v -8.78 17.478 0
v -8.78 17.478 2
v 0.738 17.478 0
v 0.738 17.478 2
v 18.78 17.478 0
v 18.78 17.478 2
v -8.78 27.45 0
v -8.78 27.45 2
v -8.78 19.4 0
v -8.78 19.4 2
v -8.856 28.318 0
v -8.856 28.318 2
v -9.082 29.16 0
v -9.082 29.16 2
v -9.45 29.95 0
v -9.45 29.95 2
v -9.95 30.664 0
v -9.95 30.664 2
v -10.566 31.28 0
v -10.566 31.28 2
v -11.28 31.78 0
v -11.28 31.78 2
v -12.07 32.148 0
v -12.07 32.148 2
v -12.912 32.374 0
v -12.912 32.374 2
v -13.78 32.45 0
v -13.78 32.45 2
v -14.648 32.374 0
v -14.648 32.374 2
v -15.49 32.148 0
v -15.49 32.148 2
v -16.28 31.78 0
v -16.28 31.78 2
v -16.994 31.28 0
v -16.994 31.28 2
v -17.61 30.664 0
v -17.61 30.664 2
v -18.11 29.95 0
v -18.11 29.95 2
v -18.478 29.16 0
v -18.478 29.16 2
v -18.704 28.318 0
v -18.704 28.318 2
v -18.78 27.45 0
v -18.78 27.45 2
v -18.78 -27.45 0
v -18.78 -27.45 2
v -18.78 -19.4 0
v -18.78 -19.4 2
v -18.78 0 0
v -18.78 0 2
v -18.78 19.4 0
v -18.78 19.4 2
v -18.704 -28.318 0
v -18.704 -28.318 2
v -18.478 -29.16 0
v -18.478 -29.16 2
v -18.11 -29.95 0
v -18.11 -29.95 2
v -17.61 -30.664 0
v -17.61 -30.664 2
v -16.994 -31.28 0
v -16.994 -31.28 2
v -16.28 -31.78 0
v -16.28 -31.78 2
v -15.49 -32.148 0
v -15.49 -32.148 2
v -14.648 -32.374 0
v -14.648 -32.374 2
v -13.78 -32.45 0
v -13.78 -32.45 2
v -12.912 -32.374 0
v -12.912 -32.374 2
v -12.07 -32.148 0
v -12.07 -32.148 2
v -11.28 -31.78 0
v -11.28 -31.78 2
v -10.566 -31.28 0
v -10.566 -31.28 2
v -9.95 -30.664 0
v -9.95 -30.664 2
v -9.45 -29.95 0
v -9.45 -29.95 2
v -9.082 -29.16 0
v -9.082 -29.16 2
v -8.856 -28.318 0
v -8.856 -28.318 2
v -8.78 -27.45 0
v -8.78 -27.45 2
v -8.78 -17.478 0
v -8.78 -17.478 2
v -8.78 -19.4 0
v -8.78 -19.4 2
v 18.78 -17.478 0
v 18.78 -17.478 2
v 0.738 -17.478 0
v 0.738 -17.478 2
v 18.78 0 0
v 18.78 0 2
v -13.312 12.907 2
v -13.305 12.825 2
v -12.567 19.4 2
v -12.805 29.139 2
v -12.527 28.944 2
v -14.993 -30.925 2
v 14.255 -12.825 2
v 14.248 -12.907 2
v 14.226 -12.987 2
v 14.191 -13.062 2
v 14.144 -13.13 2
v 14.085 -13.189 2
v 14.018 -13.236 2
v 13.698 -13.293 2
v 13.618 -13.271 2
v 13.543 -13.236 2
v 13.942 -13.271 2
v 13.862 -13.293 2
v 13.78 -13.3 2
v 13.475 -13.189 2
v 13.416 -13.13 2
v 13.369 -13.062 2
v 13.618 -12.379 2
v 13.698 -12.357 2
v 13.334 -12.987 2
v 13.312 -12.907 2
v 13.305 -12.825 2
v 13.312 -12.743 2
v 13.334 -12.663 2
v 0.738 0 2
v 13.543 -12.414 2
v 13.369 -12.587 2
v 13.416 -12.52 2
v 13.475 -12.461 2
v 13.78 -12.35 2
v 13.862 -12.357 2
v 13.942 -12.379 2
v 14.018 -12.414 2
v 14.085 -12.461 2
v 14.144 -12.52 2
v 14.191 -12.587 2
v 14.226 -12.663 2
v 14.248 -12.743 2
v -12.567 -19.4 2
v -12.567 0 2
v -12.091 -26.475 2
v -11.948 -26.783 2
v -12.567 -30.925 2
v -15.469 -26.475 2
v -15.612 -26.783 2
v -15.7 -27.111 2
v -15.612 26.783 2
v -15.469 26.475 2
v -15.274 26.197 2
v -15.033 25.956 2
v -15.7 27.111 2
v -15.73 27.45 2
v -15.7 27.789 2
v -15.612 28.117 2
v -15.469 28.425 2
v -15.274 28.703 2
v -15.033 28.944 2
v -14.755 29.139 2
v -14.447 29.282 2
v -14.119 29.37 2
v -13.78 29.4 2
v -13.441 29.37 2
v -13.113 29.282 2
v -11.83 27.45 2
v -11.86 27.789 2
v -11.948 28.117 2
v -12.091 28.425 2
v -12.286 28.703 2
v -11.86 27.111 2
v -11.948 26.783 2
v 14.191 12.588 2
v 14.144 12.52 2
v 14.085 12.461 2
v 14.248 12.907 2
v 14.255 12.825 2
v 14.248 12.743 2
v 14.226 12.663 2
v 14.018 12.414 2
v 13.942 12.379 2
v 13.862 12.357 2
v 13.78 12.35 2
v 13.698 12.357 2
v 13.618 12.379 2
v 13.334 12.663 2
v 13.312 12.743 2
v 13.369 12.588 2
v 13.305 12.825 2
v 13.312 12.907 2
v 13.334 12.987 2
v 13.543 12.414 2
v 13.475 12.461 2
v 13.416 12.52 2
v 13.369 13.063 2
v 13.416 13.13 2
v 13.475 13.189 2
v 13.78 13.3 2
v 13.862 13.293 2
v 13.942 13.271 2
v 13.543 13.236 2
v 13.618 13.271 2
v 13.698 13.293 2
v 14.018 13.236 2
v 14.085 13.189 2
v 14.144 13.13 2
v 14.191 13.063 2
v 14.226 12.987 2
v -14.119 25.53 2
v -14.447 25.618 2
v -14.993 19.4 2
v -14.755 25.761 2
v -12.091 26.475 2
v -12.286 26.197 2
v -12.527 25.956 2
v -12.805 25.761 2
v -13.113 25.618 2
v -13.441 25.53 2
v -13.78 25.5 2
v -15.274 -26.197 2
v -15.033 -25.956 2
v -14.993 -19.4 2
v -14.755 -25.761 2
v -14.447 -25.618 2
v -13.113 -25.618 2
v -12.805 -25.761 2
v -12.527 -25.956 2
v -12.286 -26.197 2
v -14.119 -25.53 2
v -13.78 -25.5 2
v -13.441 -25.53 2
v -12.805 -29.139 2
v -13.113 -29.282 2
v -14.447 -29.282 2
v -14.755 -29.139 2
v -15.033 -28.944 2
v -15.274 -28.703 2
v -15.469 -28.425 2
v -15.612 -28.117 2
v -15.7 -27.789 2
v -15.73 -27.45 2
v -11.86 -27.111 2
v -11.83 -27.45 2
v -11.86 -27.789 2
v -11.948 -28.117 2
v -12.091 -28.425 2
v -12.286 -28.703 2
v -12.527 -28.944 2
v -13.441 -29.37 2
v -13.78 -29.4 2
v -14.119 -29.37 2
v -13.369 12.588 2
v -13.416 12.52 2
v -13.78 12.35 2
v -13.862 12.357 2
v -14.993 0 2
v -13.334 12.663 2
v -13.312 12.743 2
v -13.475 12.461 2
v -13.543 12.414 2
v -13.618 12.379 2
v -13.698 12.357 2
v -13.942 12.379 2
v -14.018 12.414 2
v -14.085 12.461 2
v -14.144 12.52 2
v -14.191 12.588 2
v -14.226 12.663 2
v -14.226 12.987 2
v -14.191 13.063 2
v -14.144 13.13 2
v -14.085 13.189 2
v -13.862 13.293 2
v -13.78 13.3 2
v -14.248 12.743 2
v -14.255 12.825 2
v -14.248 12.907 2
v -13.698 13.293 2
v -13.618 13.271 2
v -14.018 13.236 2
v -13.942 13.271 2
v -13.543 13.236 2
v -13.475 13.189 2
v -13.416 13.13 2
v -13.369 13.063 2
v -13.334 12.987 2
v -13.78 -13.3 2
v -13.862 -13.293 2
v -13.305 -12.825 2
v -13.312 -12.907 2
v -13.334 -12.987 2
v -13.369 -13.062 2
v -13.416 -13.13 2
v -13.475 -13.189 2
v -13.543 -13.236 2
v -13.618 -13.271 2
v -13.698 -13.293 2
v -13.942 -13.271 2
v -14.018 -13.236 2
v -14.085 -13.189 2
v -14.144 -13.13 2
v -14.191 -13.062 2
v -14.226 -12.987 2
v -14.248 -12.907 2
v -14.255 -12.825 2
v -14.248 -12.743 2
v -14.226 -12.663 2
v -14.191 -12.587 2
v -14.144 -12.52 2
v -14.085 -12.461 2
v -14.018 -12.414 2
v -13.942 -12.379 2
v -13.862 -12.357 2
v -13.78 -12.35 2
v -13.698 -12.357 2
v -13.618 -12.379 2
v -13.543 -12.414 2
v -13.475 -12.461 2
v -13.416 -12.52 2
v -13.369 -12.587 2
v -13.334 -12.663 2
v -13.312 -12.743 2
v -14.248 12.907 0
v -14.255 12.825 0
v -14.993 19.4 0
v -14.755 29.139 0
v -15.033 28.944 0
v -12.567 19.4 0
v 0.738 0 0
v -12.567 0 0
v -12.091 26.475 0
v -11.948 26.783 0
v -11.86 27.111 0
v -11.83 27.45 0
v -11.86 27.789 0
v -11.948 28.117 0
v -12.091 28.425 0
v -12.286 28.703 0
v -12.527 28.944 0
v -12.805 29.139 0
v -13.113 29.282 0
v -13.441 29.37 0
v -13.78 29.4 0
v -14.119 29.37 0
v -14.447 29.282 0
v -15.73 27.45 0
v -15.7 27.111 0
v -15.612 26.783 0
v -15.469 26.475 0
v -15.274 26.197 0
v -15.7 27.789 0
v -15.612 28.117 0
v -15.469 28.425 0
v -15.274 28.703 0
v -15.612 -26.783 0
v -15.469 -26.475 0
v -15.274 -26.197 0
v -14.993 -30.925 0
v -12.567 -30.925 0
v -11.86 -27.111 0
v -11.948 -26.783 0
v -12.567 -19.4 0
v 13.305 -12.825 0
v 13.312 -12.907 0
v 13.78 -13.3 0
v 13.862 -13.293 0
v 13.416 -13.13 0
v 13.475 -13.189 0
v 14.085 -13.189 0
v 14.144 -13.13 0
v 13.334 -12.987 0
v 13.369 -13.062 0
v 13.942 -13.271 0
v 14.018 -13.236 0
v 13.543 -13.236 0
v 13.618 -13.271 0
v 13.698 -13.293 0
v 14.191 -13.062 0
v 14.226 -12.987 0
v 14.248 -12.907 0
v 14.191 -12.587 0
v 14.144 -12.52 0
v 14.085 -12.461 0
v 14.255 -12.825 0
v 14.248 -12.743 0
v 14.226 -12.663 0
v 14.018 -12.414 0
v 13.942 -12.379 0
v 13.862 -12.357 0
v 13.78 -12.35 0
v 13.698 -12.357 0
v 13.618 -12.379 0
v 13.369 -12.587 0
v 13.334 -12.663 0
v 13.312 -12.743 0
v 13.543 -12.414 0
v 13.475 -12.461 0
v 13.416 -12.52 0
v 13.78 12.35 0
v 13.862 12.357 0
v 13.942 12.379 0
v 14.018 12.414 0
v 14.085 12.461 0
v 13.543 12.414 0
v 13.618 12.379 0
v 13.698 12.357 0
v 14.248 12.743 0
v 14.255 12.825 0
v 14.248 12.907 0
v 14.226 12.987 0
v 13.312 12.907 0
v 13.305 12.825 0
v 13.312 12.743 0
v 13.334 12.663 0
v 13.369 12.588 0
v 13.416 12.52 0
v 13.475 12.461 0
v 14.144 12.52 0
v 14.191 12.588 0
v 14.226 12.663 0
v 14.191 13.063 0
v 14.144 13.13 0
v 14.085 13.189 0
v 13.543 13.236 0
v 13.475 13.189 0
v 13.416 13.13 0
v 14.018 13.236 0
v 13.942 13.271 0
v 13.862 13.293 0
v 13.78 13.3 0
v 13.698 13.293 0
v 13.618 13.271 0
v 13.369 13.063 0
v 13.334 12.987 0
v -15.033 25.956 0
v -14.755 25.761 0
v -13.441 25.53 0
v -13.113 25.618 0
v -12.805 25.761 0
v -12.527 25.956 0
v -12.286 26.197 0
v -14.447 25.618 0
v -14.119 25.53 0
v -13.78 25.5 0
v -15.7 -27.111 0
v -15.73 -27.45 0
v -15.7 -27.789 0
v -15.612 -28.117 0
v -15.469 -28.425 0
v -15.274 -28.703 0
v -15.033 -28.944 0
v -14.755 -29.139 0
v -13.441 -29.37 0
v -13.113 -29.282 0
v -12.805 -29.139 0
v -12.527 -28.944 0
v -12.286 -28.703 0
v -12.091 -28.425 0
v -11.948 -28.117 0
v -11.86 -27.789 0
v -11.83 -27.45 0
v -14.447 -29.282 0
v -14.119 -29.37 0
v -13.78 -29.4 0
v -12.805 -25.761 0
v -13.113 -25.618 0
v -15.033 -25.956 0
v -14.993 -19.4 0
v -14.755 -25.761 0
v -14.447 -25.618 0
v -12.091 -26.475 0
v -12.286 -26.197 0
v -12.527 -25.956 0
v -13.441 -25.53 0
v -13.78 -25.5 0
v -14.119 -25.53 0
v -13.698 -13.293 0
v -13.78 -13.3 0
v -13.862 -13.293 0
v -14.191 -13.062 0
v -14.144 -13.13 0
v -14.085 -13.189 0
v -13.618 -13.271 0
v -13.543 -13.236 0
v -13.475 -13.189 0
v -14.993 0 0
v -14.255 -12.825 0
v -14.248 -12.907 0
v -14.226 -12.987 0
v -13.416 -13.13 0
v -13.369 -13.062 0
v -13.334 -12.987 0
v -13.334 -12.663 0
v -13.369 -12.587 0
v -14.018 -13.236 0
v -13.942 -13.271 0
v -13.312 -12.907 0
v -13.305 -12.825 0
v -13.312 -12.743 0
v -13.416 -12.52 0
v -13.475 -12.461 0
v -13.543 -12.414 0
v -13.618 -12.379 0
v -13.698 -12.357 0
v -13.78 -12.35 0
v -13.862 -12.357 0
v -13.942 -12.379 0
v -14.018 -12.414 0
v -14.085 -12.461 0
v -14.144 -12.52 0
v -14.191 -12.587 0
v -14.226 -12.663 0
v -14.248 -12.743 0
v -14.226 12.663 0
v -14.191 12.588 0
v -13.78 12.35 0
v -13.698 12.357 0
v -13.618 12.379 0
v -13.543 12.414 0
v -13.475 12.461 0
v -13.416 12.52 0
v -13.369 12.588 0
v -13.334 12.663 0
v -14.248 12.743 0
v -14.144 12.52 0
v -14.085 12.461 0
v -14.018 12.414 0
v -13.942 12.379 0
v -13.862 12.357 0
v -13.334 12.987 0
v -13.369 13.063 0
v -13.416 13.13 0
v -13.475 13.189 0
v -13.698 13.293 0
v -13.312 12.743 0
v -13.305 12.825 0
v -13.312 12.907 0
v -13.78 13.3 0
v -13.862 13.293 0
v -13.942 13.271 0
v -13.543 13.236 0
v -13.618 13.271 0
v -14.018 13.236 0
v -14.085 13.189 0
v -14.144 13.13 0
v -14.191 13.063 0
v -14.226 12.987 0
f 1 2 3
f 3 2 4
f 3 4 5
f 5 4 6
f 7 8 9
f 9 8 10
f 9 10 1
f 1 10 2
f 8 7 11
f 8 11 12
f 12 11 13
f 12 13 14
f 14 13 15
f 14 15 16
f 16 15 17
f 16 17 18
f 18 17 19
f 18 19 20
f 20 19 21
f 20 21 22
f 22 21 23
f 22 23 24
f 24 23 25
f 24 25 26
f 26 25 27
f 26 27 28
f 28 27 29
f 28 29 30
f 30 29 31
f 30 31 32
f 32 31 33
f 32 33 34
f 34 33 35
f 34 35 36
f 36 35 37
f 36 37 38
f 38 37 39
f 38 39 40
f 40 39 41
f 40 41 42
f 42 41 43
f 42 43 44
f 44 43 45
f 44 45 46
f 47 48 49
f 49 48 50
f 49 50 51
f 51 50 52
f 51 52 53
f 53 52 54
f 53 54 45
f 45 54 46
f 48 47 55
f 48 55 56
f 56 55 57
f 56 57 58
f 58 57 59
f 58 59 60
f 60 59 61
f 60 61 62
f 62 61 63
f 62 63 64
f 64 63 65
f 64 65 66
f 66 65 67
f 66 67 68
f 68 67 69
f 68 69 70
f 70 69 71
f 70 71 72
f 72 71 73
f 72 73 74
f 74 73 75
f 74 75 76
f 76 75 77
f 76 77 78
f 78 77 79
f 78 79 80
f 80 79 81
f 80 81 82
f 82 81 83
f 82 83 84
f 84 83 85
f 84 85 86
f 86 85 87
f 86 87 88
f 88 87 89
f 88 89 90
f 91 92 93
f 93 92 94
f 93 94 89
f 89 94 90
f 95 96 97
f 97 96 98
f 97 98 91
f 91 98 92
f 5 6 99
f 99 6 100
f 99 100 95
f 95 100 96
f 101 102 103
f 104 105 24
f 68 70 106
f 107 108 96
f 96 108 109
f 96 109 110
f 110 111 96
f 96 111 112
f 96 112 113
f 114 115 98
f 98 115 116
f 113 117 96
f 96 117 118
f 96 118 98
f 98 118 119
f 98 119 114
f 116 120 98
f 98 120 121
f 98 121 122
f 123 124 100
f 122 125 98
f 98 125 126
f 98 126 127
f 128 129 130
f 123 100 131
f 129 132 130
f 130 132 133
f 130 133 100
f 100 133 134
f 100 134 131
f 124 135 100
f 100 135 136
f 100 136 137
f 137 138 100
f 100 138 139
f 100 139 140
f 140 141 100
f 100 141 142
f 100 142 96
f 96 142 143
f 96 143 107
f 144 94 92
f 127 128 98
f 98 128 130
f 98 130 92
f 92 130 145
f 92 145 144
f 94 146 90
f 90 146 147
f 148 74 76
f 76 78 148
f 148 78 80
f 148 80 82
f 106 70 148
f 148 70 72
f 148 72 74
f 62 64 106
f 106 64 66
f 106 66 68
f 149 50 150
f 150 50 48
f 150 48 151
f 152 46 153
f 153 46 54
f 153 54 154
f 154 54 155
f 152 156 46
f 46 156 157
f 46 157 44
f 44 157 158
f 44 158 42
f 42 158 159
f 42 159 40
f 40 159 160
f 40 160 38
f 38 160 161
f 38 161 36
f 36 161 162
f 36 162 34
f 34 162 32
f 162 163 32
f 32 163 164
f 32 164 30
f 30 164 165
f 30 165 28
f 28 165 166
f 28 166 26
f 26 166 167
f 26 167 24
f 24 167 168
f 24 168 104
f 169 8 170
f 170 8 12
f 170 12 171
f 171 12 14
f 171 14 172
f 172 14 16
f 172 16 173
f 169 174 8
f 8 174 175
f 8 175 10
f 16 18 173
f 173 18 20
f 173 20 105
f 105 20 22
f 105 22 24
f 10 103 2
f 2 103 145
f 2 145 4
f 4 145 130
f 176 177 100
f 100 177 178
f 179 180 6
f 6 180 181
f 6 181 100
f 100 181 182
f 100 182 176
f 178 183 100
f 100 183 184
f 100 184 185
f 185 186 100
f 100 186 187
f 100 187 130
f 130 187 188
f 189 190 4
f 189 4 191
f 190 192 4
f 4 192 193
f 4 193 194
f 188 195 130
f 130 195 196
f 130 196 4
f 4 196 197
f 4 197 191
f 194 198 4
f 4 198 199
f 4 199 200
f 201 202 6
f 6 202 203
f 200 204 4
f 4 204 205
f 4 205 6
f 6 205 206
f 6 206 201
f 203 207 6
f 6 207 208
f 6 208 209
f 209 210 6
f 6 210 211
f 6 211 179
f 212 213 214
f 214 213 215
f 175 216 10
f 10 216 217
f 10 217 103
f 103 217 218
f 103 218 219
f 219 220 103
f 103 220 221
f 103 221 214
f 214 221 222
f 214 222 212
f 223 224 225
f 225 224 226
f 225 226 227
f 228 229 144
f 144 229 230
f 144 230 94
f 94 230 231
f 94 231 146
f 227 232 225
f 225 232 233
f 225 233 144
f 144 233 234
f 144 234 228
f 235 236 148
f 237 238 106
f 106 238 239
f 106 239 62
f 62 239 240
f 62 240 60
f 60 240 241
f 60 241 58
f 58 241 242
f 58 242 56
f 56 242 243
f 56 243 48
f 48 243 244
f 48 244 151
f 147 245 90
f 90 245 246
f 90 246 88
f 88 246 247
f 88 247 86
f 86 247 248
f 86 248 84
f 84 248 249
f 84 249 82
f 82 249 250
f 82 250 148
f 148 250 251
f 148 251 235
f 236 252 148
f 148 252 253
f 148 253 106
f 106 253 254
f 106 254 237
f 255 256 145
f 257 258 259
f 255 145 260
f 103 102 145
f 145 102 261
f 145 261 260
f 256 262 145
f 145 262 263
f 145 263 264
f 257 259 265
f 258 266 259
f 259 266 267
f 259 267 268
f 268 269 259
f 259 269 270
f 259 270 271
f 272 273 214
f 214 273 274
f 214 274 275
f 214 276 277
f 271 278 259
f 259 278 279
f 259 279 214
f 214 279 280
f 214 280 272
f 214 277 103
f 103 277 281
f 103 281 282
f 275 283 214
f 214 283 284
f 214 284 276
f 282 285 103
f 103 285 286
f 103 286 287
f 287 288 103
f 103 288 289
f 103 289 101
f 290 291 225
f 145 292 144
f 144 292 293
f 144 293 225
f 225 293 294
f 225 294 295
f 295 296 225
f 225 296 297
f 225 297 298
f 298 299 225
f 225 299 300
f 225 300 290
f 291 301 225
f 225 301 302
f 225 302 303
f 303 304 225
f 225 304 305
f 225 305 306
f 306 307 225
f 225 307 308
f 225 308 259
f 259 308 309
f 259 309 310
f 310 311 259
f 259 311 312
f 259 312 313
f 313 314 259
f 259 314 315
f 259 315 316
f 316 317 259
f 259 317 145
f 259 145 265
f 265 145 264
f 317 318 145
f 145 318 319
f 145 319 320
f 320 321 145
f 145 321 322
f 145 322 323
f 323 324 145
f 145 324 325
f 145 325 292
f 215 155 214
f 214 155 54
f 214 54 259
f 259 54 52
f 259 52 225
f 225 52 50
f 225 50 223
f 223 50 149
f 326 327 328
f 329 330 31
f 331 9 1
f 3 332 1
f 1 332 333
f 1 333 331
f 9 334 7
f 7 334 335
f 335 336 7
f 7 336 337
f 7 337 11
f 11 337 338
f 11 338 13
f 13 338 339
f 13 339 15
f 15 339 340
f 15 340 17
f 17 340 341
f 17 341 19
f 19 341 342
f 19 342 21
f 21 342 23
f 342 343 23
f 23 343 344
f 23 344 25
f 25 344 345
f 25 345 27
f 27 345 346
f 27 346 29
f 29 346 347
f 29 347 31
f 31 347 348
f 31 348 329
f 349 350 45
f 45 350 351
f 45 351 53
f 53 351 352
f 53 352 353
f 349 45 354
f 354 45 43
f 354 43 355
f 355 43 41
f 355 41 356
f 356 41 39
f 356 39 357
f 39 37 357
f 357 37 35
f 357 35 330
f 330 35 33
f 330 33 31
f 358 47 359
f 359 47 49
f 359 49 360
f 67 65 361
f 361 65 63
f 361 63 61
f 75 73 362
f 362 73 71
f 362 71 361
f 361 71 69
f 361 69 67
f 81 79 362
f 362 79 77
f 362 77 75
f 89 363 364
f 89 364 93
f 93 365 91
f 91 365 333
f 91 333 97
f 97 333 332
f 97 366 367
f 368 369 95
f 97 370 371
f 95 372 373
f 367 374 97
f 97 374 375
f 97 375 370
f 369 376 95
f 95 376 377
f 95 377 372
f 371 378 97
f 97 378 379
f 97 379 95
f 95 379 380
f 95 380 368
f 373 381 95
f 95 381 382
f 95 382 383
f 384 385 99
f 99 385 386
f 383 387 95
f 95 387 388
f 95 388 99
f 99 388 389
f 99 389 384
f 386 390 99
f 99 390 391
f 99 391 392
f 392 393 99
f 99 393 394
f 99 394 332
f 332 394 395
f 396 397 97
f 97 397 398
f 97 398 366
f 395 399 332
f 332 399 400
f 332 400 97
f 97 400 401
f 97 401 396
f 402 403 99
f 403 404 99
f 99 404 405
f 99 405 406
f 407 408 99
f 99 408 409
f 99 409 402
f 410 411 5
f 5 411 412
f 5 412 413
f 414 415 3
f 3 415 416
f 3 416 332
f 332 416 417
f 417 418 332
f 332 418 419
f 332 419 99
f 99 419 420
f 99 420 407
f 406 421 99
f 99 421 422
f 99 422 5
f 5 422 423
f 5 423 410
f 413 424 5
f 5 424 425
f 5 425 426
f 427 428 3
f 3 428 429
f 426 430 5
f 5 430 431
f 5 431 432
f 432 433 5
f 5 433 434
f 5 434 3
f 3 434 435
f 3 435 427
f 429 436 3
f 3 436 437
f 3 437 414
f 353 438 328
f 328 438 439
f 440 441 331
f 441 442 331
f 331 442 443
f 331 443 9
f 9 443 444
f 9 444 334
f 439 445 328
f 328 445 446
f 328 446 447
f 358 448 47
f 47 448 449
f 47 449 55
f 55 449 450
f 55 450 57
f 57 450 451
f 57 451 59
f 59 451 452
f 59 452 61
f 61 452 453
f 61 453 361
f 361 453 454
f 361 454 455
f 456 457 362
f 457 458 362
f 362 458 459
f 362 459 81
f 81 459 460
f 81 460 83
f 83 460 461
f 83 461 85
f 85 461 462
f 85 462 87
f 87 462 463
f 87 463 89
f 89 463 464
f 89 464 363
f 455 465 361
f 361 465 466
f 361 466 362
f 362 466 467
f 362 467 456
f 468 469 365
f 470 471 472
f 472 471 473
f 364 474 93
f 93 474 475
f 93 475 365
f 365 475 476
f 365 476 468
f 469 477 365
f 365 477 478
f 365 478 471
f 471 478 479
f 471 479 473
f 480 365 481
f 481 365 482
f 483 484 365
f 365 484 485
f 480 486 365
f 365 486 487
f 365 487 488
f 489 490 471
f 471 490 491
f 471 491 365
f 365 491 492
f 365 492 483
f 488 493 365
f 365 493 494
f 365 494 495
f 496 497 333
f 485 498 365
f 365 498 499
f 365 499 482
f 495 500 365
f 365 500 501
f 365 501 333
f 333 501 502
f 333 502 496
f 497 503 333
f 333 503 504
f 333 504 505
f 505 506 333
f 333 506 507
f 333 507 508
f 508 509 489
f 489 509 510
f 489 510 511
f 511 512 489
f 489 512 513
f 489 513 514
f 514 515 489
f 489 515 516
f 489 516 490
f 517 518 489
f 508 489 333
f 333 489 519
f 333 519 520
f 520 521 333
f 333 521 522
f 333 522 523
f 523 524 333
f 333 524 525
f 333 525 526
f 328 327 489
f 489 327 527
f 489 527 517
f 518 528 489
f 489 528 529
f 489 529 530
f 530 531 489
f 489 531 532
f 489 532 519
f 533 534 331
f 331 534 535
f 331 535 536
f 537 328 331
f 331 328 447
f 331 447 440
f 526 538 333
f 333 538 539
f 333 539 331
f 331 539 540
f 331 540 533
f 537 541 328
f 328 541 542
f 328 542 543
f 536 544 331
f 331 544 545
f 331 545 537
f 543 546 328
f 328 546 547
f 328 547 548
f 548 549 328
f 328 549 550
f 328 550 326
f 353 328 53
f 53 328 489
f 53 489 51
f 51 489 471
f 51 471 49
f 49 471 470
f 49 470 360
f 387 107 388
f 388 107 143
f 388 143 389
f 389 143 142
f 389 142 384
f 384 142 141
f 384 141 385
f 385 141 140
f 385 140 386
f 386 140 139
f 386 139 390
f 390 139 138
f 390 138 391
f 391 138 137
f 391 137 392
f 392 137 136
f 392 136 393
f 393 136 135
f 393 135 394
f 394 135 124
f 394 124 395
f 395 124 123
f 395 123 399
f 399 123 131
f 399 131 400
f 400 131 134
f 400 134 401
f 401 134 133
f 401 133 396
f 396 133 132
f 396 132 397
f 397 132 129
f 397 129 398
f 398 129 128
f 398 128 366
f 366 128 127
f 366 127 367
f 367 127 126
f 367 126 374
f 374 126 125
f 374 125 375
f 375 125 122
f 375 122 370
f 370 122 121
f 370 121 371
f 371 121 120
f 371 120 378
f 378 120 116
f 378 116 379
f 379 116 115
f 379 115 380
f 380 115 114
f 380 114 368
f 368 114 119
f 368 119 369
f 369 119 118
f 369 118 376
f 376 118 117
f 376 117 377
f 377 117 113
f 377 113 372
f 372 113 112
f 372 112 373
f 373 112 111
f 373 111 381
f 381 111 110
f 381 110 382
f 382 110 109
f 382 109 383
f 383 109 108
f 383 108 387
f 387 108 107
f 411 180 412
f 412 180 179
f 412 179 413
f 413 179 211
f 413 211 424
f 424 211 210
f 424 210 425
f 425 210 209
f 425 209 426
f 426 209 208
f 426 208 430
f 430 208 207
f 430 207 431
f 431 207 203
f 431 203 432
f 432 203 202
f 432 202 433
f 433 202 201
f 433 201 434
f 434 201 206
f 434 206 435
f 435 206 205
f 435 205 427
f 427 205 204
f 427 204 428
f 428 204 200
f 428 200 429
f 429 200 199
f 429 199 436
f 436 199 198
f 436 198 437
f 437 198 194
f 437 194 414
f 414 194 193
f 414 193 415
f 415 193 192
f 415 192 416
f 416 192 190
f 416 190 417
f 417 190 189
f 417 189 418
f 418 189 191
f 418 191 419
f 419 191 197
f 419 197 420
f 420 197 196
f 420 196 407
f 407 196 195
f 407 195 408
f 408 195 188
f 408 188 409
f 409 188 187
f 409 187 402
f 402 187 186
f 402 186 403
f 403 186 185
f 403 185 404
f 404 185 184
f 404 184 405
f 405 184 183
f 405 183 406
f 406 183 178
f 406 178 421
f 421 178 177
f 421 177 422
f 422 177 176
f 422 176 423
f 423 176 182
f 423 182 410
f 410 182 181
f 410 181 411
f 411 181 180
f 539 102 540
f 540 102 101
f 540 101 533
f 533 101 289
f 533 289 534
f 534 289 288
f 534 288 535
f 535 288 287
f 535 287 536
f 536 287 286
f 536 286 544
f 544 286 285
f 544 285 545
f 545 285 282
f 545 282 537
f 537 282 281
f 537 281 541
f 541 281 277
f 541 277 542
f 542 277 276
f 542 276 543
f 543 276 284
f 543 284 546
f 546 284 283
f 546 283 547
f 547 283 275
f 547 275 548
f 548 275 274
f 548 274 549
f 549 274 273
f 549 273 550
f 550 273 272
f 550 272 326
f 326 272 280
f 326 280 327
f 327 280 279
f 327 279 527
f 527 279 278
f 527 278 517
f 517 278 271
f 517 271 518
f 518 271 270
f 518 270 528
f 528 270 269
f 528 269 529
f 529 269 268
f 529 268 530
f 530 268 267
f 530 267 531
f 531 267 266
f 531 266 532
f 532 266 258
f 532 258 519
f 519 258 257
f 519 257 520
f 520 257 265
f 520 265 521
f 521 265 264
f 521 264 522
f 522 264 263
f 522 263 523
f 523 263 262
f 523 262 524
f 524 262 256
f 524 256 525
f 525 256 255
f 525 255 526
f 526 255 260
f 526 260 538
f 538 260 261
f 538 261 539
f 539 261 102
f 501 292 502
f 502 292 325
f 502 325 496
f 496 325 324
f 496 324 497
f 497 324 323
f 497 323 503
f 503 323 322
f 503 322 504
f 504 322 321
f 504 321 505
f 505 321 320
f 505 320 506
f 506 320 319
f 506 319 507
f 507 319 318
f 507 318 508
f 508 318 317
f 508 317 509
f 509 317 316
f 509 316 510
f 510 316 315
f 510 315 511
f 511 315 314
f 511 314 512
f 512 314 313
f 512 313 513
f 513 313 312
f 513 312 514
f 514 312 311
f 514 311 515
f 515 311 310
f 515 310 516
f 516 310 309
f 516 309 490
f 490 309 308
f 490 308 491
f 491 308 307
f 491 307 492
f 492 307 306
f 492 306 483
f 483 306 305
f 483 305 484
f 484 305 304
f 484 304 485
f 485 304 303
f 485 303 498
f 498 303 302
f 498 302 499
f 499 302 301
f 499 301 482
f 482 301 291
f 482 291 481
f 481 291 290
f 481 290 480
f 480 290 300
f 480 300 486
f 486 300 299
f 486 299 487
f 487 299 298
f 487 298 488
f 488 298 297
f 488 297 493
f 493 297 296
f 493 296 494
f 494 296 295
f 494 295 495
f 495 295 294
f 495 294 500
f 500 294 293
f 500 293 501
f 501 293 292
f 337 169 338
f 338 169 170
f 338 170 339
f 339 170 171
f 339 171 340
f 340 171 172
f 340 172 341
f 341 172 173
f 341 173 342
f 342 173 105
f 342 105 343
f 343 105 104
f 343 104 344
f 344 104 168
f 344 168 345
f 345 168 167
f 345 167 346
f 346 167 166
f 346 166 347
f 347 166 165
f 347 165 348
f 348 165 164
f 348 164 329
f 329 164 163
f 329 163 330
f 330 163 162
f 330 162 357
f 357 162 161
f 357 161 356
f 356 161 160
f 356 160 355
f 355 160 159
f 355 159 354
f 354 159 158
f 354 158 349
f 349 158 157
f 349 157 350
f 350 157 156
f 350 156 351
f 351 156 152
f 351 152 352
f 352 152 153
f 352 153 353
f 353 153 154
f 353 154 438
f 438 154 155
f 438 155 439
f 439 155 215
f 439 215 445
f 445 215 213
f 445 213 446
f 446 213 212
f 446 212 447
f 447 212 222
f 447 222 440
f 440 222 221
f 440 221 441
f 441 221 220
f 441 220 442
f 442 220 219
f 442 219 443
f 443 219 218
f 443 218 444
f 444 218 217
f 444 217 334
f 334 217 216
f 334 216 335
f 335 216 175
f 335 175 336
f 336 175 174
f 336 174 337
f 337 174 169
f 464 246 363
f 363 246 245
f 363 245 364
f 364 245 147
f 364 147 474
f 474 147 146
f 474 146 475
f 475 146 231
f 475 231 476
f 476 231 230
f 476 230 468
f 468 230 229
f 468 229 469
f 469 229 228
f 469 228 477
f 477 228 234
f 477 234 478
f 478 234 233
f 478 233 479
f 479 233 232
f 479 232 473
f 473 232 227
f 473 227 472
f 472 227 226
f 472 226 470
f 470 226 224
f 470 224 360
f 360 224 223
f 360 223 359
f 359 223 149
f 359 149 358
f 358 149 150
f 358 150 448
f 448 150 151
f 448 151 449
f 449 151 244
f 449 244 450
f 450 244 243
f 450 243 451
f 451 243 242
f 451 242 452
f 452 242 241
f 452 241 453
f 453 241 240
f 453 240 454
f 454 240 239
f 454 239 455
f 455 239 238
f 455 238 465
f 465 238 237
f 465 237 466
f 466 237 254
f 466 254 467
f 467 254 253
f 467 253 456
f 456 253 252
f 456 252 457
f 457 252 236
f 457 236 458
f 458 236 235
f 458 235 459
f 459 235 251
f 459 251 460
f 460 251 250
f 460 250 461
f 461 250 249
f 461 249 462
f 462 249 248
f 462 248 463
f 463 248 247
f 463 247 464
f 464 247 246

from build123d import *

# Parameters (mm, degrees)
SKETCH1_W                      = 27.56
SKETCH1_H                      = 34.956966618
BOSS_EXTRUDE1_DEPTH            = 2
TAP_DRILL_FOR_M1_2X0_25_TAP2_D = 0.95
M3_5_CLEARANCE_HOLE1_D         = 3.9


with BuildPart() as part:
    # Sketch1 → Boss-Extrude1 (new body)
    with BuildSketch(Plane.XY):
        with Locations((5, 0)):
            Rectangle(SKETCH1_W, SKETCH1_H)
        Polygon((-18.78, -10), (-18.78, -17.478483309), (-8.78, -17.478483309), (-8.78, 17.478483309), (-18.78, 17.478483309), (-18.78, 10), align=None)
        with BuildLine():
            Line((-18.78, 17.478483309), (-8.78, 17.478483309))
            Line((-8.78, 17.478483309), (-8.78, 27.45))
            ThreePointArc((-8.78, 27.45), (-13.78, 32.45), (-18.78, 27.45))
            Line((-18.78, 27.45), (-18.78, 17.478483309))
        make_face()
        with BuildLine():
            Line((-8.78, -17.478483309), (-18.78, -17.478483309))
            Line((-18.78, -17.478483309), (-18.78, -27.45))
            ThreePointArc((-18.78, -27.45), (-13.78, -32.45), (-8.78, -27.45))
            Line((-8.78, -27.45), (-8.78, -17.478483309))
        make_face()
    extrude(amount=BOSS_EXTRUDE1_DEPTH)

    # Tap Drill for M1.2x0.25 Tap2 (through all)
    with Locations(Plane.XY.offset(2)):
        with Locations((-13.78, -12.825), (-13.78, 12.825), (13.78, 12.825), (13.78, -12.825)):
            Hole(TAP_DRILL_FOR_M1_2X0_25_TAP2_D / 2)

    # M3.5 Clearance Hole1 (through all)
    with Locations(Plane.XY.offset(2)):
        with Locations((-13.78, -27.45), (-13.78, 27.45)):
            Hole(M3_5_CLEARANCE_HOLE1_D / 2)


solid = part.part
